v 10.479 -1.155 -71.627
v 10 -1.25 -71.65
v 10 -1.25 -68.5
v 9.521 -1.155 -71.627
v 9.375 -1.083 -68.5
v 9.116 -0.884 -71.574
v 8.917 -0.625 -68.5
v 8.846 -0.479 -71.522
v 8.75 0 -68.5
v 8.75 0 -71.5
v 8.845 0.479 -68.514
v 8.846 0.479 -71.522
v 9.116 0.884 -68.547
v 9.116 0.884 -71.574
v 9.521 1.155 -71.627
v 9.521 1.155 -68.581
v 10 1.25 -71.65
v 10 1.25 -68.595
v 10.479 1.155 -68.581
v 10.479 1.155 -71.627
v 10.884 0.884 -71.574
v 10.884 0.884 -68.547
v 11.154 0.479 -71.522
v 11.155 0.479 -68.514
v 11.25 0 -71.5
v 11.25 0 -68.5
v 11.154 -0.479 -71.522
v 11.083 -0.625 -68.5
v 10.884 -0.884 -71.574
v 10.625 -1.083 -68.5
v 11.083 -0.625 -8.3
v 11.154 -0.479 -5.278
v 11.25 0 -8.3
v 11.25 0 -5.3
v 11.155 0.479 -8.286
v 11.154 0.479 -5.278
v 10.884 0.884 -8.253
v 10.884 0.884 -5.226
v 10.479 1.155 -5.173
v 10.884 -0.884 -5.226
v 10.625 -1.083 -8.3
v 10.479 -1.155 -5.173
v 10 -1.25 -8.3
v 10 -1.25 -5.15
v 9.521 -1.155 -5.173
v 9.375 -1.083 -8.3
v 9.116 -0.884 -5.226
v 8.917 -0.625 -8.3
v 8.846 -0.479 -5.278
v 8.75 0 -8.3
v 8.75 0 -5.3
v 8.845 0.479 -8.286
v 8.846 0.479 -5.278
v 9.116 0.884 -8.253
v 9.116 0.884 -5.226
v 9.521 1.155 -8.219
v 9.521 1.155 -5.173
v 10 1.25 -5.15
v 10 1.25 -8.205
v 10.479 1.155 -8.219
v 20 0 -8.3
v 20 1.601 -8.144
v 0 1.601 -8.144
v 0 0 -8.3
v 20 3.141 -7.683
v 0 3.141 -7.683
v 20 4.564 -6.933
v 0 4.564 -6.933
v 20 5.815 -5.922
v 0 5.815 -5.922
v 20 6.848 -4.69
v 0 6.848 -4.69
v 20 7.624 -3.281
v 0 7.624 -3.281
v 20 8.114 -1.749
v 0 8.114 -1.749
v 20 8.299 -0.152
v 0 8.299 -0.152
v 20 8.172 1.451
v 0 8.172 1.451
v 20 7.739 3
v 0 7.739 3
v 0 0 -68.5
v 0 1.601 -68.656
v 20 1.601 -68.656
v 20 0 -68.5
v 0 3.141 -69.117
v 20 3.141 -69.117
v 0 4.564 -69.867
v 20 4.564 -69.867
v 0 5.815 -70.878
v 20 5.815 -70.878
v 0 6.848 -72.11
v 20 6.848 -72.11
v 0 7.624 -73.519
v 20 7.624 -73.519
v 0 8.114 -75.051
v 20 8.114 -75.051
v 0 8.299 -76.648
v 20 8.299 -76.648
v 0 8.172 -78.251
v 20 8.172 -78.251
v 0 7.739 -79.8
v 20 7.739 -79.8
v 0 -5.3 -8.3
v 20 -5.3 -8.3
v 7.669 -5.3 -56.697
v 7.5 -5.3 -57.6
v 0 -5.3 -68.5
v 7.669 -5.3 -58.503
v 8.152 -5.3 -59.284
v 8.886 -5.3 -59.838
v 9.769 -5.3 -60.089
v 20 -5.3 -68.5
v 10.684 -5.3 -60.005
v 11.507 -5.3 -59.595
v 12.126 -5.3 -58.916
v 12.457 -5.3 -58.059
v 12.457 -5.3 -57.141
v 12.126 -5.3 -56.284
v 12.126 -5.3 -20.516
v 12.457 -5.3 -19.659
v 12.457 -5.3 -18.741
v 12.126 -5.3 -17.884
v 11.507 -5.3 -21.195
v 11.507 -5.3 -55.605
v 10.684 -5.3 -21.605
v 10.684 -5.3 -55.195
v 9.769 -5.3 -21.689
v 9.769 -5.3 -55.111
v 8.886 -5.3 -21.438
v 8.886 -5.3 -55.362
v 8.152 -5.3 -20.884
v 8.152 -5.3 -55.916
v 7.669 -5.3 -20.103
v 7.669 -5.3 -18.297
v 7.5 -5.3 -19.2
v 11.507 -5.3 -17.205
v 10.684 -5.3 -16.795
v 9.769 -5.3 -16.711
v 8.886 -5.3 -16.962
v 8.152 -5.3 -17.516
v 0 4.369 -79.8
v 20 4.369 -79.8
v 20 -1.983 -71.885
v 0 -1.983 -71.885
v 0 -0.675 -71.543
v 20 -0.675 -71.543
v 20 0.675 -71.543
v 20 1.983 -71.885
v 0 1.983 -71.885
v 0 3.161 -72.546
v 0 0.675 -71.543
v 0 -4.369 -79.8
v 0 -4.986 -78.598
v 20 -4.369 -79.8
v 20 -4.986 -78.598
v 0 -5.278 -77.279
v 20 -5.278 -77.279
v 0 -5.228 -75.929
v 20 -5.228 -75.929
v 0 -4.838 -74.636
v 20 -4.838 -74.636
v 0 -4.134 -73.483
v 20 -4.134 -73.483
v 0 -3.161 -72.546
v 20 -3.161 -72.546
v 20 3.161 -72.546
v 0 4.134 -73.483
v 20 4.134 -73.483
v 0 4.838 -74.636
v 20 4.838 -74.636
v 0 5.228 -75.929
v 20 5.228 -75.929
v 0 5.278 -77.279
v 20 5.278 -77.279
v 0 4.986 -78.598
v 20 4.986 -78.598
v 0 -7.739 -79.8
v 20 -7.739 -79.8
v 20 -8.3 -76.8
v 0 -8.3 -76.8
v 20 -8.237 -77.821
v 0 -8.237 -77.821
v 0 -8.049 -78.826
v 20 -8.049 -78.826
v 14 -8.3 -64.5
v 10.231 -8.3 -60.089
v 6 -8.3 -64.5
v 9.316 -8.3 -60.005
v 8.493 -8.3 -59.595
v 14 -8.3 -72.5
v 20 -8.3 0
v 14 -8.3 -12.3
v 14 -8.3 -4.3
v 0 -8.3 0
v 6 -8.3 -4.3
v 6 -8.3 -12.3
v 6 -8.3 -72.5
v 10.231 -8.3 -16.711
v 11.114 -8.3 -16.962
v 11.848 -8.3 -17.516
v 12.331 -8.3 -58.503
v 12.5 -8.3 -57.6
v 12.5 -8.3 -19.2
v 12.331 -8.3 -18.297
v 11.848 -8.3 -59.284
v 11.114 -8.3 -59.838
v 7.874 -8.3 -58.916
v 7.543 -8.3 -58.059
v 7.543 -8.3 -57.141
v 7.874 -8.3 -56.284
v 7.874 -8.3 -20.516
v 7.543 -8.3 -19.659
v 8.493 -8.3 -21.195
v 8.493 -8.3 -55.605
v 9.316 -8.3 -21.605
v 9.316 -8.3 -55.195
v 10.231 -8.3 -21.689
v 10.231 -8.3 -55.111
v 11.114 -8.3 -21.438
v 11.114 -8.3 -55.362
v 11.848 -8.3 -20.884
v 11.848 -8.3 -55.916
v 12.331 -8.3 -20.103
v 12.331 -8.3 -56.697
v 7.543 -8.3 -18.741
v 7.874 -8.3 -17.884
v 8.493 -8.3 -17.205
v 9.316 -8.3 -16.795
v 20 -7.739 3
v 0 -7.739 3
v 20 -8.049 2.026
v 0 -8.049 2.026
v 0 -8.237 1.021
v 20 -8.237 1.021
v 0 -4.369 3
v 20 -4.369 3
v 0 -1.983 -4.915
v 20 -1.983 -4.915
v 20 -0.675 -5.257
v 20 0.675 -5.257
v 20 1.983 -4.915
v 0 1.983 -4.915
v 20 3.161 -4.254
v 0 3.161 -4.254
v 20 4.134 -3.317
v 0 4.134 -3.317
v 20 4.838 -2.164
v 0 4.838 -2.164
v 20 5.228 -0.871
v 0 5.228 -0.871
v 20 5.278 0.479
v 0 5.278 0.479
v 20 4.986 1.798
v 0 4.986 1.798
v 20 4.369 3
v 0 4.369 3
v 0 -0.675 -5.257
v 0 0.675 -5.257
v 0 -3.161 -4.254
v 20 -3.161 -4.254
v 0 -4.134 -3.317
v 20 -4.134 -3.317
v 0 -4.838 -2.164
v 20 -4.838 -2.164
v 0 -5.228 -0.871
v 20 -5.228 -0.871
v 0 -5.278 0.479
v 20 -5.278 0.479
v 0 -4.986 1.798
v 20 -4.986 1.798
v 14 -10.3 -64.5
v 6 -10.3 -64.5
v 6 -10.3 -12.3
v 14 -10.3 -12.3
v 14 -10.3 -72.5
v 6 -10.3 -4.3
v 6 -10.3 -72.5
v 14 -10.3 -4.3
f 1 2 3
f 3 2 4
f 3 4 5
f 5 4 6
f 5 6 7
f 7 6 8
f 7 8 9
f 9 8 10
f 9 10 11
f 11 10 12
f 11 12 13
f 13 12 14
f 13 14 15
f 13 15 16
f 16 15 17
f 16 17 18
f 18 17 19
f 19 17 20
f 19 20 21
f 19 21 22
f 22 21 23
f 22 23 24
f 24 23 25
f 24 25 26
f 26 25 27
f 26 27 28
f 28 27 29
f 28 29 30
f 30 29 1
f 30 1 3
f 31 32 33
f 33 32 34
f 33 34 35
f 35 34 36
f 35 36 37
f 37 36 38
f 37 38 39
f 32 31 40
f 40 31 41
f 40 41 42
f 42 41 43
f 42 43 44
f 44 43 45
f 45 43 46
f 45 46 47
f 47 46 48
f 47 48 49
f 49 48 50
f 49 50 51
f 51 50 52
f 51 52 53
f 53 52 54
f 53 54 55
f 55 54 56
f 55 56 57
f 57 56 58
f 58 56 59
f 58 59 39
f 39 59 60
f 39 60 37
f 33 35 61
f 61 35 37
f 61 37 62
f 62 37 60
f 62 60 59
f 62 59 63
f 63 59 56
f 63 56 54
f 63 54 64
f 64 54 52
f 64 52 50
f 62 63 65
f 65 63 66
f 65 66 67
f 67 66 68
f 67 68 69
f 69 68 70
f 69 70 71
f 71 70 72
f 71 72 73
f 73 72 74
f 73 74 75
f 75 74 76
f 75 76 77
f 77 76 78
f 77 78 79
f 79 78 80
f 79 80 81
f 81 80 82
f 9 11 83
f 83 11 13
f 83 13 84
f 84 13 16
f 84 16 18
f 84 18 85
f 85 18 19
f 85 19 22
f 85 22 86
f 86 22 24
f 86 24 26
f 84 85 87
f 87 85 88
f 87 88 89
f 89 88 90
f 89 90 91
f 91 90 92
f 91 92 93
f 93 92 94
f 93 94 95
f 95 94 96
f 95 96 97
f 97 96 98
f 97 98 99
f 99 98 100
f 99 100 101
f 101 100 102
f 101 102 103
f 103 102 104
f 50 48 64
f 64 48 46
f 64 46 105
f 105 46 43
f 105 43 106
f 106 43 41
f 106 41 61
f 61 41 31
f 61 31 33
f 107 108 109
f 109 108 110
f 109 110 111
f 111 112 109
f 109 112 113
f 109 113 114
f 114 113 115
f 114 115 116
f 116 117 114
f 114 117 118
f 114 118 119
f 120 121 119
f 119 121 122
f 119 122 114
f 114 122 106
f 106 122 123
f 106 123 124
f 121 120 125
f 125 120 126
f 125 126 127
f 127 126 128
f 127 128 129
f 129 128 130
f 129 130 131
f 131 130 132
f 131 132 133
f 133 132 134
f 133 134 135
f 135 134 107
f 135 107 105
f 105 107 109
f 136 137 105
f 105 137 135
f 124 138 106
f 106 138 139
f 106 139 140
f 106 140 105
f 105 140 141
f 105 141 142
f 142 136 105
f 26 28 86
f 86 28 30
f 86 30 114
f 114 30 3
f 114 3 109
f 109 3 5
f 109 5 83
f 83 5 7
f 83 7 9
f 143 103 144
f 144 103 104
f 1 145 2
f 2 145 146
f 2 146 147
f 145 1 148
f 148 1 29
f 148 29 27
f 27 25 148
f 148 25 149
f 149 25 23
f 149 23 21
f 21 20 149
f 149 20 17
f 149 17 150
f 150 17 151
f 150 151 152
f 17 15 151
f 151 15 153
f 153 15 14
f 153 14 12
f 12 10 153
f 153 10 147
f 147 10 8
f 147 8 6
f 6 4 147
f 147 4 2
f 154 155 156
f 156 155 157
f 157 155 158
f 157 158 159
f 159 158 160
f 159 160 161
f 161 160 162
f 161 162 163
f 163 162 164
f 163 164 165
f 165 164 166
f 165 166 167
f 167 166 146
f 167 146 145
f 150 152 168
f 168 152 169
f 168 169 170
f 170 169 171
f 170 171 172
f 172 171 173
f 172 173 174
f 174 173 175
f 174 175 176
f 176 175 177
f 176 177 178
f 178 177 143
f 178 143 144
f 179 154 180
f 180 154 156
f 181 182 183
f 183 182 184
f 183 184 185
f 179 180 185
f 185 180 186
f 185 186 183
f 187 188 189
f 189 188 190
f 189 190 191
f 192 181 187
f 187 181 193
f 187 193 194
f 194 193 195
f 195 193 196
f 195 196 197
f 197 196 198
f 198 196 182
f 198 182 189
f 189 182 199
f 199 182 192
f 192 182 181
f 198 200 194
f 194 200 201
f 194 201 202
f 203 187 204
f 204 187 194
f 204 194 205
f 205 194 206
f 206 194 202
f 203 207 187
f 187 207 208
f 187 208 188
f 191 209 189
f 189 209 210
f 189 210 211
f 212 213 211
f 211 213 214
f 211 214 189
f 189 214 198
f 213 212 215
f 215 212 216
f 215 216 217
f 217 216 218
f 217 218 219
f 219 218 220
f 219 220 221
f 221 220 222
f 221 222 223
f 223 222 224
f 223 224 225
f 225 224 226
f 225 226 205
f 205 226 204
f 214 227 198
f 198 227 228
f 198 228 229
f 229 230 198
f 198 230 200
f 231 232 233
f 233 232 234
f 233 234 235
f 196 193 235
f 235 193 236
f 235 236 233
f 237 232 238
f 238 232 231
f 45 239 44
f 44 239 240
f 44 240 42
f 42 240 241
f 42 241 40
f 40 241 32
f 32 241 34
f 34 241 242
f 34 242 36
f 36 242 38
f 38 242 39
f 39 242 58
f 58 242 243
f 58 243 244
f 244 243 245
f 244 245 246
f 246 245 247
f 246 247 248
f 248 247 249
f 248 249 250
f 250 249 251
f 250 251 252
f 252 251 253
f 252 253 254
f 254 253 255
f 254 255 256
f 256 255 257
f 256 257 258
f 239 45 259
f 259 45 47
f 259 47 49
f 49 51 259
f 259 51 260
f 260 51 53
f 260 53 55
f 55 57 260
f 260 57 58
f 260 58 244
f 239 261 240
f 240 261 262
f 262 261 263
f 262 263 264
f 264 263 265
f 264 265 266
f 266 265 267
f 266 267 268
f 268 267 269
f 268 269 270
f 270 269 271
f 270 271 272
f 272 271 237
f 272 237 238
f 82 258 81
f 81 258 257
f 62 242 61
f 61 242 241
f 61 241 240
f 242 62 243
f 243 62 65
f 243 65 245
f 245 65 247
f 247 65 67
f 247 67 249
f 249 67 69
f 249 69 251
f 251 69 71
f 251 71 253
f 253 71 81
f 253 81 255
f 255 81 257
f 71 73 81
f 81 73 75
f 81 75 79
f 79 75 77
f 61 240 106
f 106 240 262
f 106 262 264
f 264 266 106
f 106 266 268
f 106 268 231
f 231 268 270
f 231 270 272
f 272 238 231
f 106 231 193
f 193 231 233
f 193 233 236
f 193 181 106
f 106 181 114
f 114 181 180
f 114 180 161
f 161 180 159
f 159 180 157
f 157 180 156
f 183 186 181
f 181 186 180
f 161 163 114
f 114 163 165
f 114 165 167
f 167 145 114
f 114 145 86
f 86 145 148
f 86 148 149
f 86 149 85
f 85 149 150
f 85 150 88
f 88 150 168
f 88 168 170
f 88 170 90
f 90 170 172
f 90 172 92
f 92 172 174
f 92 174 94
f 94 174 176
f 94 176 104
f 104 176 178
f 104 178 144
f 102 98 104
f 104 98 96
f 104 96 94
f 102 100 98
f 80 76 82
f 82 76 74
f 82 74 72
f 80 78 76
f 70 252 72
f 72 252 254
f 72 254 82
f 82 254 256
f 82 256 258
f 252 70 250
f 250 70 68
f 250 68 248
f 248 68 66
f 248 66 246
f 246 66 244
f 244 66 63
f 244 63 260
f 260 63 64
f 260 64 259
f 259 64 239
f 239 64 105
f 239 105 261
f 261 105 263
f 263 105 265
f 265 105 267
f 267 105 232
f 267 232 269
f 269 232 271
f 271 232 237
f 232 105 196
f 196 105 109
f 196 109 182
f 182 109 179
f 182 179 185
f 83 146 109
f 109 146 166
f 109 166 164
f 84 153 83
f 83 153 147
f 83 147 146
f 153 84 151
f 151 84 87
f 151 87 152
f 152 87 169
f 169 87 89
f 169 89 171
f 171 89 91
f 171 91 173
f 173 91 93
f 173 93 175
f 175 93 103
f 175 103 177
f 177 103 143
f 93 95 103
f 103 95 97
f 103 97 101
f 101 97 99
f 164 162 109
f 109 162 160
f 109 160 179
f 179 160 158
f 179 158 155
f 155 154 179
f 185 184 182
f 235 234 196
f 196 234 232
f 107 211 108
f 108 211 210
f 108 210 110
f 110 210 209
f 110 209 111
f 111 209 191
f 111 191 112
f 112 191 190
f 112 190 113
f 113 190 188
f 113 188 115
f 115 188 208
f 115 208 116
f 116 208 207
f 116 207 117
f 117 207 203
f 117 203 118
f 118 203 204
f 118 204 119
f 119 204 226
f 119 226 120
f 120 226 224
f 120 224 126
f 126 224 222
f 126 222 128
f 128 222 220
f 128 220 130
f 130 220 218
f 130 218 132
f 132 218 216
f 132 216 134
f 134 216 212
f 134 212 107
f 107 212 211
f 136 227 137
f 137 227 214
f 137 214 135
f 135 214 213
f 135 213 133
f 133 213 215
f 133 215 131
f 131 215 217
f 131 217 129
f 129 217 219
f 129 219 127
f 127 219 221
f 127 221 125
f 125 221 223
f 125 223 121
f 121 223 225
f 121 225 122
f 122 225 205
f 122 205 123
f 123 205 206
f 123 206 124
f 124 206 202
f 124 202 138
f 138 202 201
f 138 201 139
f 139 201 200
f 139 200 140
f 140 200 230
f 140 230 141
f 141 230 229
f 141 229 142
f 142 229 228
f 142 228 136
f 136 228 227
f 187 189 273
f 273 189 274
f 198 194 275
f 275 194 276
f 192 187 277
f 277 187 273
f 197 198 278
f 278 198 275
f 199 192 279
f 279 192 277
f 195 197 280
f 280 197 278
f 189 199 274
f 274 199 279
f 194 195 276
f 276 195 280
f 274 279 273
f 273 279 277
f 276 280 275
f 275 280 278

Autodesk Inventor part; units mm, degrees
ref_plane "YZ Plane" through (0, 0, 0) normal (1, 0, 0) x (0, 1, 0)
ref_plane "XZ Plane" through (0, 0, 0) normal (0, 1, 0) x (-1, 0, 0)
sketch "스케치1" plane through (0, 0, 0) normal (1, 0, 0) x (0, 1, 0)
  circle A0 centre (0, 0) radius 5.3
  circle A1 centre (0, 0) radius 5
  line L0 (4, 3) -> (-4, 3)
  circle A2 centre (0, 0) radius 8.3
  line L1 (4, 3) -> (11.6093, 3)
  line L2 (-4, 3) -> (-10.334, 3)
  line L3 (11.6093, -38.4) -> (-10.334, -38.4) construction
  circle A3 centre (0, -76.8) radius 5.3
  circle A4 centre (0, -76.8) radius 5
  line L4 (4, -79.8) -> (-4, -79.8)
  circle A5 centre (0, -76.8) radius 8.3
  line L5 (4, -79.8) -> (11.6093, -79.8)
  line L6 (-4, -79.8) -> (-10.334, -79.8)
  line L7 (-8.3, 0) -> (-8.3, -76.8)
  line L8 (-5.3, 0) -> (-5.3, -76.8)
  line L9 (0, -8.3) -> (-5.3, -8.3)
  line L10 (0, -68.5) -> (-5.3, -68.5)
  point P0 (0, 3)
  point P1 (0, -79.8)
  point P2 (-4.3692, -79.8)
  point P3 (4.3692, -79.8)
  point P4 (7.7389, 3)
  point P5 (4.3692, 3)
  point P6 (-4.3692, 3)
  point P7 (-7.7389, 3)
  point P8 (-7.7389, -79.8)
  point P9 (7.7389, -79.8)
  dimension "d0" = 10.6
  dimension "d1" = 3
  dimension "d2" = 10
  dimension "d3" = 16.6
  dimension "d4" = 38.4
extrude "돌출1" add sketch "스케치1" along normal blind 20 contours L8 A2 L2 A0 | A0 L1 A2 L8 | L8 A5 L7 A2 | A2 L9 L8 | A5 L8 A3 L6 | L10 A5 L8 | A5 L5 A3 L8
ref_plane "작업 평면1" through (0, 0, 8.3) normal (0, 0, 1) x (1, 0, 0)
sketch "스케치2" plane through (0, 0, 8.3) normal (0, 0, 1) x (1, 0, 0)
  line L0 (0, 4.3692) -> (20, 4.3692) projected
  line L1 (0, 0) -> (0, 7.7389) projected
  line L2 (0, -8.3) -> (20, -8.3) projected
  line L3 (20, 0) -> (20, 7.7389) projected
  line L4 (0, 0) -> (20, 0) projected
  line L5 (0, 8.3) -> (20, 8.3) projected
  circle A0 centre (10, 0) radius 1.25
  line L6 (0, 7.7389) -> (20, 7.7389) projected
  line L7 (0, -7.7389) -> (0, -8.3) projected
  line L8 (20, -7.7389) -> (20, -8.3) projected
  line L9 (0, -7.7389) -> (20, -7.7389) projected
  point P0 (0, 0)
  dimension "d7" = 2.5
extrude "돌출2" cut sketch "스케치2" along normal through all both and the other way through all contours A0 L4 | L4 A0
sketch "스케치3" plane through (0, -8.3, -76.8) normal (0, -1, 0) x (1, 0, 0)
  line L0 (0, 76.8) -> (0, 0) projected
  line L1 (0, 0) -> (20, 0) projected
  line L2 (20, 76.8) -> (20, 0) projected
  line L3 (0, 76.8) -> (20, 76.8) projected
  line L4 (0, 0) -> (0, -3) projected
  line L5 (0, -3) -> (20, -3) projected
  line L6 (20, 0) -> (20, -3) projected
  line L7 (0, 0) -> (20, 0) projected
  line L8 (0, 79.8) -> (0, 76.8) projected
  line L9 (0, 76.8) -> (20, 76.8) projected
  line L10 (20, 79.8) -> (20, 76.8) projected
  line L11 (0, 79.8) -> (20, 79.8) projected
  line L12 (20, 38.4) -> (0, 38.4) construction
  line L13 (0, 79.8) -> (20, 79.8) projected
  line L14 (10, 79.8) -> (10, -3) construction
  circle A0 centre (10, 19.2) radius 2.5
  line L15 (6, 12.3) -> (14, 12.3)
  line L16 (14, 12.3) -> (14, 4.3)
  line L17 (14, 4.3) -> (6, 4.3)
  line L18 (6, 4.3) -> (6, 12.3)
  line L19 (0, 8.3) -> (20, 8.3) projected
  line L20 (6, 12.3) -> (14, 4.3) construction
  line L21 (14, 12.3) -> (6, 4.3) construction
  circle A1 centre (10, 57.6) radius 2.5
  line L22 (6, 64.5) -> (14, 64.5)
  line L23 (14, 64.5) -> (14, 72.5)
  line L24 (14, 72.5) -> (6, 72.5)
  line L25 (6, 72.5) -> (6, 64.5)
  line L26 (0, 68.5) -> (20, 68.5)
  line L27 (6, 64.5) -> (14, 72.5) construction
  line L28 (14, 64.5) -> (6, 72.5) construction
  point P0 (10, 8.3)
  point P1 (10, 68.5)
  dimension "d10" = 38.4
  dimension "d11" = 10
  dimension "d12" = 5
  dimension "d13" = 19.2
  dimension "d14" = 8
  dimension "d15" = 8
extrude "돌출3" cut sketch "스케치3" against normal blind 20 contours A0 | A1
extrude "돌출4" add sketch "스케치3" along normal blind 2 contours L26 L23 L22 L25 | L25 L24 L23 L26 | L19 L16 L17 L18 | L18 L15 L16 L19
properties part number "pipe_holder_typeA"
